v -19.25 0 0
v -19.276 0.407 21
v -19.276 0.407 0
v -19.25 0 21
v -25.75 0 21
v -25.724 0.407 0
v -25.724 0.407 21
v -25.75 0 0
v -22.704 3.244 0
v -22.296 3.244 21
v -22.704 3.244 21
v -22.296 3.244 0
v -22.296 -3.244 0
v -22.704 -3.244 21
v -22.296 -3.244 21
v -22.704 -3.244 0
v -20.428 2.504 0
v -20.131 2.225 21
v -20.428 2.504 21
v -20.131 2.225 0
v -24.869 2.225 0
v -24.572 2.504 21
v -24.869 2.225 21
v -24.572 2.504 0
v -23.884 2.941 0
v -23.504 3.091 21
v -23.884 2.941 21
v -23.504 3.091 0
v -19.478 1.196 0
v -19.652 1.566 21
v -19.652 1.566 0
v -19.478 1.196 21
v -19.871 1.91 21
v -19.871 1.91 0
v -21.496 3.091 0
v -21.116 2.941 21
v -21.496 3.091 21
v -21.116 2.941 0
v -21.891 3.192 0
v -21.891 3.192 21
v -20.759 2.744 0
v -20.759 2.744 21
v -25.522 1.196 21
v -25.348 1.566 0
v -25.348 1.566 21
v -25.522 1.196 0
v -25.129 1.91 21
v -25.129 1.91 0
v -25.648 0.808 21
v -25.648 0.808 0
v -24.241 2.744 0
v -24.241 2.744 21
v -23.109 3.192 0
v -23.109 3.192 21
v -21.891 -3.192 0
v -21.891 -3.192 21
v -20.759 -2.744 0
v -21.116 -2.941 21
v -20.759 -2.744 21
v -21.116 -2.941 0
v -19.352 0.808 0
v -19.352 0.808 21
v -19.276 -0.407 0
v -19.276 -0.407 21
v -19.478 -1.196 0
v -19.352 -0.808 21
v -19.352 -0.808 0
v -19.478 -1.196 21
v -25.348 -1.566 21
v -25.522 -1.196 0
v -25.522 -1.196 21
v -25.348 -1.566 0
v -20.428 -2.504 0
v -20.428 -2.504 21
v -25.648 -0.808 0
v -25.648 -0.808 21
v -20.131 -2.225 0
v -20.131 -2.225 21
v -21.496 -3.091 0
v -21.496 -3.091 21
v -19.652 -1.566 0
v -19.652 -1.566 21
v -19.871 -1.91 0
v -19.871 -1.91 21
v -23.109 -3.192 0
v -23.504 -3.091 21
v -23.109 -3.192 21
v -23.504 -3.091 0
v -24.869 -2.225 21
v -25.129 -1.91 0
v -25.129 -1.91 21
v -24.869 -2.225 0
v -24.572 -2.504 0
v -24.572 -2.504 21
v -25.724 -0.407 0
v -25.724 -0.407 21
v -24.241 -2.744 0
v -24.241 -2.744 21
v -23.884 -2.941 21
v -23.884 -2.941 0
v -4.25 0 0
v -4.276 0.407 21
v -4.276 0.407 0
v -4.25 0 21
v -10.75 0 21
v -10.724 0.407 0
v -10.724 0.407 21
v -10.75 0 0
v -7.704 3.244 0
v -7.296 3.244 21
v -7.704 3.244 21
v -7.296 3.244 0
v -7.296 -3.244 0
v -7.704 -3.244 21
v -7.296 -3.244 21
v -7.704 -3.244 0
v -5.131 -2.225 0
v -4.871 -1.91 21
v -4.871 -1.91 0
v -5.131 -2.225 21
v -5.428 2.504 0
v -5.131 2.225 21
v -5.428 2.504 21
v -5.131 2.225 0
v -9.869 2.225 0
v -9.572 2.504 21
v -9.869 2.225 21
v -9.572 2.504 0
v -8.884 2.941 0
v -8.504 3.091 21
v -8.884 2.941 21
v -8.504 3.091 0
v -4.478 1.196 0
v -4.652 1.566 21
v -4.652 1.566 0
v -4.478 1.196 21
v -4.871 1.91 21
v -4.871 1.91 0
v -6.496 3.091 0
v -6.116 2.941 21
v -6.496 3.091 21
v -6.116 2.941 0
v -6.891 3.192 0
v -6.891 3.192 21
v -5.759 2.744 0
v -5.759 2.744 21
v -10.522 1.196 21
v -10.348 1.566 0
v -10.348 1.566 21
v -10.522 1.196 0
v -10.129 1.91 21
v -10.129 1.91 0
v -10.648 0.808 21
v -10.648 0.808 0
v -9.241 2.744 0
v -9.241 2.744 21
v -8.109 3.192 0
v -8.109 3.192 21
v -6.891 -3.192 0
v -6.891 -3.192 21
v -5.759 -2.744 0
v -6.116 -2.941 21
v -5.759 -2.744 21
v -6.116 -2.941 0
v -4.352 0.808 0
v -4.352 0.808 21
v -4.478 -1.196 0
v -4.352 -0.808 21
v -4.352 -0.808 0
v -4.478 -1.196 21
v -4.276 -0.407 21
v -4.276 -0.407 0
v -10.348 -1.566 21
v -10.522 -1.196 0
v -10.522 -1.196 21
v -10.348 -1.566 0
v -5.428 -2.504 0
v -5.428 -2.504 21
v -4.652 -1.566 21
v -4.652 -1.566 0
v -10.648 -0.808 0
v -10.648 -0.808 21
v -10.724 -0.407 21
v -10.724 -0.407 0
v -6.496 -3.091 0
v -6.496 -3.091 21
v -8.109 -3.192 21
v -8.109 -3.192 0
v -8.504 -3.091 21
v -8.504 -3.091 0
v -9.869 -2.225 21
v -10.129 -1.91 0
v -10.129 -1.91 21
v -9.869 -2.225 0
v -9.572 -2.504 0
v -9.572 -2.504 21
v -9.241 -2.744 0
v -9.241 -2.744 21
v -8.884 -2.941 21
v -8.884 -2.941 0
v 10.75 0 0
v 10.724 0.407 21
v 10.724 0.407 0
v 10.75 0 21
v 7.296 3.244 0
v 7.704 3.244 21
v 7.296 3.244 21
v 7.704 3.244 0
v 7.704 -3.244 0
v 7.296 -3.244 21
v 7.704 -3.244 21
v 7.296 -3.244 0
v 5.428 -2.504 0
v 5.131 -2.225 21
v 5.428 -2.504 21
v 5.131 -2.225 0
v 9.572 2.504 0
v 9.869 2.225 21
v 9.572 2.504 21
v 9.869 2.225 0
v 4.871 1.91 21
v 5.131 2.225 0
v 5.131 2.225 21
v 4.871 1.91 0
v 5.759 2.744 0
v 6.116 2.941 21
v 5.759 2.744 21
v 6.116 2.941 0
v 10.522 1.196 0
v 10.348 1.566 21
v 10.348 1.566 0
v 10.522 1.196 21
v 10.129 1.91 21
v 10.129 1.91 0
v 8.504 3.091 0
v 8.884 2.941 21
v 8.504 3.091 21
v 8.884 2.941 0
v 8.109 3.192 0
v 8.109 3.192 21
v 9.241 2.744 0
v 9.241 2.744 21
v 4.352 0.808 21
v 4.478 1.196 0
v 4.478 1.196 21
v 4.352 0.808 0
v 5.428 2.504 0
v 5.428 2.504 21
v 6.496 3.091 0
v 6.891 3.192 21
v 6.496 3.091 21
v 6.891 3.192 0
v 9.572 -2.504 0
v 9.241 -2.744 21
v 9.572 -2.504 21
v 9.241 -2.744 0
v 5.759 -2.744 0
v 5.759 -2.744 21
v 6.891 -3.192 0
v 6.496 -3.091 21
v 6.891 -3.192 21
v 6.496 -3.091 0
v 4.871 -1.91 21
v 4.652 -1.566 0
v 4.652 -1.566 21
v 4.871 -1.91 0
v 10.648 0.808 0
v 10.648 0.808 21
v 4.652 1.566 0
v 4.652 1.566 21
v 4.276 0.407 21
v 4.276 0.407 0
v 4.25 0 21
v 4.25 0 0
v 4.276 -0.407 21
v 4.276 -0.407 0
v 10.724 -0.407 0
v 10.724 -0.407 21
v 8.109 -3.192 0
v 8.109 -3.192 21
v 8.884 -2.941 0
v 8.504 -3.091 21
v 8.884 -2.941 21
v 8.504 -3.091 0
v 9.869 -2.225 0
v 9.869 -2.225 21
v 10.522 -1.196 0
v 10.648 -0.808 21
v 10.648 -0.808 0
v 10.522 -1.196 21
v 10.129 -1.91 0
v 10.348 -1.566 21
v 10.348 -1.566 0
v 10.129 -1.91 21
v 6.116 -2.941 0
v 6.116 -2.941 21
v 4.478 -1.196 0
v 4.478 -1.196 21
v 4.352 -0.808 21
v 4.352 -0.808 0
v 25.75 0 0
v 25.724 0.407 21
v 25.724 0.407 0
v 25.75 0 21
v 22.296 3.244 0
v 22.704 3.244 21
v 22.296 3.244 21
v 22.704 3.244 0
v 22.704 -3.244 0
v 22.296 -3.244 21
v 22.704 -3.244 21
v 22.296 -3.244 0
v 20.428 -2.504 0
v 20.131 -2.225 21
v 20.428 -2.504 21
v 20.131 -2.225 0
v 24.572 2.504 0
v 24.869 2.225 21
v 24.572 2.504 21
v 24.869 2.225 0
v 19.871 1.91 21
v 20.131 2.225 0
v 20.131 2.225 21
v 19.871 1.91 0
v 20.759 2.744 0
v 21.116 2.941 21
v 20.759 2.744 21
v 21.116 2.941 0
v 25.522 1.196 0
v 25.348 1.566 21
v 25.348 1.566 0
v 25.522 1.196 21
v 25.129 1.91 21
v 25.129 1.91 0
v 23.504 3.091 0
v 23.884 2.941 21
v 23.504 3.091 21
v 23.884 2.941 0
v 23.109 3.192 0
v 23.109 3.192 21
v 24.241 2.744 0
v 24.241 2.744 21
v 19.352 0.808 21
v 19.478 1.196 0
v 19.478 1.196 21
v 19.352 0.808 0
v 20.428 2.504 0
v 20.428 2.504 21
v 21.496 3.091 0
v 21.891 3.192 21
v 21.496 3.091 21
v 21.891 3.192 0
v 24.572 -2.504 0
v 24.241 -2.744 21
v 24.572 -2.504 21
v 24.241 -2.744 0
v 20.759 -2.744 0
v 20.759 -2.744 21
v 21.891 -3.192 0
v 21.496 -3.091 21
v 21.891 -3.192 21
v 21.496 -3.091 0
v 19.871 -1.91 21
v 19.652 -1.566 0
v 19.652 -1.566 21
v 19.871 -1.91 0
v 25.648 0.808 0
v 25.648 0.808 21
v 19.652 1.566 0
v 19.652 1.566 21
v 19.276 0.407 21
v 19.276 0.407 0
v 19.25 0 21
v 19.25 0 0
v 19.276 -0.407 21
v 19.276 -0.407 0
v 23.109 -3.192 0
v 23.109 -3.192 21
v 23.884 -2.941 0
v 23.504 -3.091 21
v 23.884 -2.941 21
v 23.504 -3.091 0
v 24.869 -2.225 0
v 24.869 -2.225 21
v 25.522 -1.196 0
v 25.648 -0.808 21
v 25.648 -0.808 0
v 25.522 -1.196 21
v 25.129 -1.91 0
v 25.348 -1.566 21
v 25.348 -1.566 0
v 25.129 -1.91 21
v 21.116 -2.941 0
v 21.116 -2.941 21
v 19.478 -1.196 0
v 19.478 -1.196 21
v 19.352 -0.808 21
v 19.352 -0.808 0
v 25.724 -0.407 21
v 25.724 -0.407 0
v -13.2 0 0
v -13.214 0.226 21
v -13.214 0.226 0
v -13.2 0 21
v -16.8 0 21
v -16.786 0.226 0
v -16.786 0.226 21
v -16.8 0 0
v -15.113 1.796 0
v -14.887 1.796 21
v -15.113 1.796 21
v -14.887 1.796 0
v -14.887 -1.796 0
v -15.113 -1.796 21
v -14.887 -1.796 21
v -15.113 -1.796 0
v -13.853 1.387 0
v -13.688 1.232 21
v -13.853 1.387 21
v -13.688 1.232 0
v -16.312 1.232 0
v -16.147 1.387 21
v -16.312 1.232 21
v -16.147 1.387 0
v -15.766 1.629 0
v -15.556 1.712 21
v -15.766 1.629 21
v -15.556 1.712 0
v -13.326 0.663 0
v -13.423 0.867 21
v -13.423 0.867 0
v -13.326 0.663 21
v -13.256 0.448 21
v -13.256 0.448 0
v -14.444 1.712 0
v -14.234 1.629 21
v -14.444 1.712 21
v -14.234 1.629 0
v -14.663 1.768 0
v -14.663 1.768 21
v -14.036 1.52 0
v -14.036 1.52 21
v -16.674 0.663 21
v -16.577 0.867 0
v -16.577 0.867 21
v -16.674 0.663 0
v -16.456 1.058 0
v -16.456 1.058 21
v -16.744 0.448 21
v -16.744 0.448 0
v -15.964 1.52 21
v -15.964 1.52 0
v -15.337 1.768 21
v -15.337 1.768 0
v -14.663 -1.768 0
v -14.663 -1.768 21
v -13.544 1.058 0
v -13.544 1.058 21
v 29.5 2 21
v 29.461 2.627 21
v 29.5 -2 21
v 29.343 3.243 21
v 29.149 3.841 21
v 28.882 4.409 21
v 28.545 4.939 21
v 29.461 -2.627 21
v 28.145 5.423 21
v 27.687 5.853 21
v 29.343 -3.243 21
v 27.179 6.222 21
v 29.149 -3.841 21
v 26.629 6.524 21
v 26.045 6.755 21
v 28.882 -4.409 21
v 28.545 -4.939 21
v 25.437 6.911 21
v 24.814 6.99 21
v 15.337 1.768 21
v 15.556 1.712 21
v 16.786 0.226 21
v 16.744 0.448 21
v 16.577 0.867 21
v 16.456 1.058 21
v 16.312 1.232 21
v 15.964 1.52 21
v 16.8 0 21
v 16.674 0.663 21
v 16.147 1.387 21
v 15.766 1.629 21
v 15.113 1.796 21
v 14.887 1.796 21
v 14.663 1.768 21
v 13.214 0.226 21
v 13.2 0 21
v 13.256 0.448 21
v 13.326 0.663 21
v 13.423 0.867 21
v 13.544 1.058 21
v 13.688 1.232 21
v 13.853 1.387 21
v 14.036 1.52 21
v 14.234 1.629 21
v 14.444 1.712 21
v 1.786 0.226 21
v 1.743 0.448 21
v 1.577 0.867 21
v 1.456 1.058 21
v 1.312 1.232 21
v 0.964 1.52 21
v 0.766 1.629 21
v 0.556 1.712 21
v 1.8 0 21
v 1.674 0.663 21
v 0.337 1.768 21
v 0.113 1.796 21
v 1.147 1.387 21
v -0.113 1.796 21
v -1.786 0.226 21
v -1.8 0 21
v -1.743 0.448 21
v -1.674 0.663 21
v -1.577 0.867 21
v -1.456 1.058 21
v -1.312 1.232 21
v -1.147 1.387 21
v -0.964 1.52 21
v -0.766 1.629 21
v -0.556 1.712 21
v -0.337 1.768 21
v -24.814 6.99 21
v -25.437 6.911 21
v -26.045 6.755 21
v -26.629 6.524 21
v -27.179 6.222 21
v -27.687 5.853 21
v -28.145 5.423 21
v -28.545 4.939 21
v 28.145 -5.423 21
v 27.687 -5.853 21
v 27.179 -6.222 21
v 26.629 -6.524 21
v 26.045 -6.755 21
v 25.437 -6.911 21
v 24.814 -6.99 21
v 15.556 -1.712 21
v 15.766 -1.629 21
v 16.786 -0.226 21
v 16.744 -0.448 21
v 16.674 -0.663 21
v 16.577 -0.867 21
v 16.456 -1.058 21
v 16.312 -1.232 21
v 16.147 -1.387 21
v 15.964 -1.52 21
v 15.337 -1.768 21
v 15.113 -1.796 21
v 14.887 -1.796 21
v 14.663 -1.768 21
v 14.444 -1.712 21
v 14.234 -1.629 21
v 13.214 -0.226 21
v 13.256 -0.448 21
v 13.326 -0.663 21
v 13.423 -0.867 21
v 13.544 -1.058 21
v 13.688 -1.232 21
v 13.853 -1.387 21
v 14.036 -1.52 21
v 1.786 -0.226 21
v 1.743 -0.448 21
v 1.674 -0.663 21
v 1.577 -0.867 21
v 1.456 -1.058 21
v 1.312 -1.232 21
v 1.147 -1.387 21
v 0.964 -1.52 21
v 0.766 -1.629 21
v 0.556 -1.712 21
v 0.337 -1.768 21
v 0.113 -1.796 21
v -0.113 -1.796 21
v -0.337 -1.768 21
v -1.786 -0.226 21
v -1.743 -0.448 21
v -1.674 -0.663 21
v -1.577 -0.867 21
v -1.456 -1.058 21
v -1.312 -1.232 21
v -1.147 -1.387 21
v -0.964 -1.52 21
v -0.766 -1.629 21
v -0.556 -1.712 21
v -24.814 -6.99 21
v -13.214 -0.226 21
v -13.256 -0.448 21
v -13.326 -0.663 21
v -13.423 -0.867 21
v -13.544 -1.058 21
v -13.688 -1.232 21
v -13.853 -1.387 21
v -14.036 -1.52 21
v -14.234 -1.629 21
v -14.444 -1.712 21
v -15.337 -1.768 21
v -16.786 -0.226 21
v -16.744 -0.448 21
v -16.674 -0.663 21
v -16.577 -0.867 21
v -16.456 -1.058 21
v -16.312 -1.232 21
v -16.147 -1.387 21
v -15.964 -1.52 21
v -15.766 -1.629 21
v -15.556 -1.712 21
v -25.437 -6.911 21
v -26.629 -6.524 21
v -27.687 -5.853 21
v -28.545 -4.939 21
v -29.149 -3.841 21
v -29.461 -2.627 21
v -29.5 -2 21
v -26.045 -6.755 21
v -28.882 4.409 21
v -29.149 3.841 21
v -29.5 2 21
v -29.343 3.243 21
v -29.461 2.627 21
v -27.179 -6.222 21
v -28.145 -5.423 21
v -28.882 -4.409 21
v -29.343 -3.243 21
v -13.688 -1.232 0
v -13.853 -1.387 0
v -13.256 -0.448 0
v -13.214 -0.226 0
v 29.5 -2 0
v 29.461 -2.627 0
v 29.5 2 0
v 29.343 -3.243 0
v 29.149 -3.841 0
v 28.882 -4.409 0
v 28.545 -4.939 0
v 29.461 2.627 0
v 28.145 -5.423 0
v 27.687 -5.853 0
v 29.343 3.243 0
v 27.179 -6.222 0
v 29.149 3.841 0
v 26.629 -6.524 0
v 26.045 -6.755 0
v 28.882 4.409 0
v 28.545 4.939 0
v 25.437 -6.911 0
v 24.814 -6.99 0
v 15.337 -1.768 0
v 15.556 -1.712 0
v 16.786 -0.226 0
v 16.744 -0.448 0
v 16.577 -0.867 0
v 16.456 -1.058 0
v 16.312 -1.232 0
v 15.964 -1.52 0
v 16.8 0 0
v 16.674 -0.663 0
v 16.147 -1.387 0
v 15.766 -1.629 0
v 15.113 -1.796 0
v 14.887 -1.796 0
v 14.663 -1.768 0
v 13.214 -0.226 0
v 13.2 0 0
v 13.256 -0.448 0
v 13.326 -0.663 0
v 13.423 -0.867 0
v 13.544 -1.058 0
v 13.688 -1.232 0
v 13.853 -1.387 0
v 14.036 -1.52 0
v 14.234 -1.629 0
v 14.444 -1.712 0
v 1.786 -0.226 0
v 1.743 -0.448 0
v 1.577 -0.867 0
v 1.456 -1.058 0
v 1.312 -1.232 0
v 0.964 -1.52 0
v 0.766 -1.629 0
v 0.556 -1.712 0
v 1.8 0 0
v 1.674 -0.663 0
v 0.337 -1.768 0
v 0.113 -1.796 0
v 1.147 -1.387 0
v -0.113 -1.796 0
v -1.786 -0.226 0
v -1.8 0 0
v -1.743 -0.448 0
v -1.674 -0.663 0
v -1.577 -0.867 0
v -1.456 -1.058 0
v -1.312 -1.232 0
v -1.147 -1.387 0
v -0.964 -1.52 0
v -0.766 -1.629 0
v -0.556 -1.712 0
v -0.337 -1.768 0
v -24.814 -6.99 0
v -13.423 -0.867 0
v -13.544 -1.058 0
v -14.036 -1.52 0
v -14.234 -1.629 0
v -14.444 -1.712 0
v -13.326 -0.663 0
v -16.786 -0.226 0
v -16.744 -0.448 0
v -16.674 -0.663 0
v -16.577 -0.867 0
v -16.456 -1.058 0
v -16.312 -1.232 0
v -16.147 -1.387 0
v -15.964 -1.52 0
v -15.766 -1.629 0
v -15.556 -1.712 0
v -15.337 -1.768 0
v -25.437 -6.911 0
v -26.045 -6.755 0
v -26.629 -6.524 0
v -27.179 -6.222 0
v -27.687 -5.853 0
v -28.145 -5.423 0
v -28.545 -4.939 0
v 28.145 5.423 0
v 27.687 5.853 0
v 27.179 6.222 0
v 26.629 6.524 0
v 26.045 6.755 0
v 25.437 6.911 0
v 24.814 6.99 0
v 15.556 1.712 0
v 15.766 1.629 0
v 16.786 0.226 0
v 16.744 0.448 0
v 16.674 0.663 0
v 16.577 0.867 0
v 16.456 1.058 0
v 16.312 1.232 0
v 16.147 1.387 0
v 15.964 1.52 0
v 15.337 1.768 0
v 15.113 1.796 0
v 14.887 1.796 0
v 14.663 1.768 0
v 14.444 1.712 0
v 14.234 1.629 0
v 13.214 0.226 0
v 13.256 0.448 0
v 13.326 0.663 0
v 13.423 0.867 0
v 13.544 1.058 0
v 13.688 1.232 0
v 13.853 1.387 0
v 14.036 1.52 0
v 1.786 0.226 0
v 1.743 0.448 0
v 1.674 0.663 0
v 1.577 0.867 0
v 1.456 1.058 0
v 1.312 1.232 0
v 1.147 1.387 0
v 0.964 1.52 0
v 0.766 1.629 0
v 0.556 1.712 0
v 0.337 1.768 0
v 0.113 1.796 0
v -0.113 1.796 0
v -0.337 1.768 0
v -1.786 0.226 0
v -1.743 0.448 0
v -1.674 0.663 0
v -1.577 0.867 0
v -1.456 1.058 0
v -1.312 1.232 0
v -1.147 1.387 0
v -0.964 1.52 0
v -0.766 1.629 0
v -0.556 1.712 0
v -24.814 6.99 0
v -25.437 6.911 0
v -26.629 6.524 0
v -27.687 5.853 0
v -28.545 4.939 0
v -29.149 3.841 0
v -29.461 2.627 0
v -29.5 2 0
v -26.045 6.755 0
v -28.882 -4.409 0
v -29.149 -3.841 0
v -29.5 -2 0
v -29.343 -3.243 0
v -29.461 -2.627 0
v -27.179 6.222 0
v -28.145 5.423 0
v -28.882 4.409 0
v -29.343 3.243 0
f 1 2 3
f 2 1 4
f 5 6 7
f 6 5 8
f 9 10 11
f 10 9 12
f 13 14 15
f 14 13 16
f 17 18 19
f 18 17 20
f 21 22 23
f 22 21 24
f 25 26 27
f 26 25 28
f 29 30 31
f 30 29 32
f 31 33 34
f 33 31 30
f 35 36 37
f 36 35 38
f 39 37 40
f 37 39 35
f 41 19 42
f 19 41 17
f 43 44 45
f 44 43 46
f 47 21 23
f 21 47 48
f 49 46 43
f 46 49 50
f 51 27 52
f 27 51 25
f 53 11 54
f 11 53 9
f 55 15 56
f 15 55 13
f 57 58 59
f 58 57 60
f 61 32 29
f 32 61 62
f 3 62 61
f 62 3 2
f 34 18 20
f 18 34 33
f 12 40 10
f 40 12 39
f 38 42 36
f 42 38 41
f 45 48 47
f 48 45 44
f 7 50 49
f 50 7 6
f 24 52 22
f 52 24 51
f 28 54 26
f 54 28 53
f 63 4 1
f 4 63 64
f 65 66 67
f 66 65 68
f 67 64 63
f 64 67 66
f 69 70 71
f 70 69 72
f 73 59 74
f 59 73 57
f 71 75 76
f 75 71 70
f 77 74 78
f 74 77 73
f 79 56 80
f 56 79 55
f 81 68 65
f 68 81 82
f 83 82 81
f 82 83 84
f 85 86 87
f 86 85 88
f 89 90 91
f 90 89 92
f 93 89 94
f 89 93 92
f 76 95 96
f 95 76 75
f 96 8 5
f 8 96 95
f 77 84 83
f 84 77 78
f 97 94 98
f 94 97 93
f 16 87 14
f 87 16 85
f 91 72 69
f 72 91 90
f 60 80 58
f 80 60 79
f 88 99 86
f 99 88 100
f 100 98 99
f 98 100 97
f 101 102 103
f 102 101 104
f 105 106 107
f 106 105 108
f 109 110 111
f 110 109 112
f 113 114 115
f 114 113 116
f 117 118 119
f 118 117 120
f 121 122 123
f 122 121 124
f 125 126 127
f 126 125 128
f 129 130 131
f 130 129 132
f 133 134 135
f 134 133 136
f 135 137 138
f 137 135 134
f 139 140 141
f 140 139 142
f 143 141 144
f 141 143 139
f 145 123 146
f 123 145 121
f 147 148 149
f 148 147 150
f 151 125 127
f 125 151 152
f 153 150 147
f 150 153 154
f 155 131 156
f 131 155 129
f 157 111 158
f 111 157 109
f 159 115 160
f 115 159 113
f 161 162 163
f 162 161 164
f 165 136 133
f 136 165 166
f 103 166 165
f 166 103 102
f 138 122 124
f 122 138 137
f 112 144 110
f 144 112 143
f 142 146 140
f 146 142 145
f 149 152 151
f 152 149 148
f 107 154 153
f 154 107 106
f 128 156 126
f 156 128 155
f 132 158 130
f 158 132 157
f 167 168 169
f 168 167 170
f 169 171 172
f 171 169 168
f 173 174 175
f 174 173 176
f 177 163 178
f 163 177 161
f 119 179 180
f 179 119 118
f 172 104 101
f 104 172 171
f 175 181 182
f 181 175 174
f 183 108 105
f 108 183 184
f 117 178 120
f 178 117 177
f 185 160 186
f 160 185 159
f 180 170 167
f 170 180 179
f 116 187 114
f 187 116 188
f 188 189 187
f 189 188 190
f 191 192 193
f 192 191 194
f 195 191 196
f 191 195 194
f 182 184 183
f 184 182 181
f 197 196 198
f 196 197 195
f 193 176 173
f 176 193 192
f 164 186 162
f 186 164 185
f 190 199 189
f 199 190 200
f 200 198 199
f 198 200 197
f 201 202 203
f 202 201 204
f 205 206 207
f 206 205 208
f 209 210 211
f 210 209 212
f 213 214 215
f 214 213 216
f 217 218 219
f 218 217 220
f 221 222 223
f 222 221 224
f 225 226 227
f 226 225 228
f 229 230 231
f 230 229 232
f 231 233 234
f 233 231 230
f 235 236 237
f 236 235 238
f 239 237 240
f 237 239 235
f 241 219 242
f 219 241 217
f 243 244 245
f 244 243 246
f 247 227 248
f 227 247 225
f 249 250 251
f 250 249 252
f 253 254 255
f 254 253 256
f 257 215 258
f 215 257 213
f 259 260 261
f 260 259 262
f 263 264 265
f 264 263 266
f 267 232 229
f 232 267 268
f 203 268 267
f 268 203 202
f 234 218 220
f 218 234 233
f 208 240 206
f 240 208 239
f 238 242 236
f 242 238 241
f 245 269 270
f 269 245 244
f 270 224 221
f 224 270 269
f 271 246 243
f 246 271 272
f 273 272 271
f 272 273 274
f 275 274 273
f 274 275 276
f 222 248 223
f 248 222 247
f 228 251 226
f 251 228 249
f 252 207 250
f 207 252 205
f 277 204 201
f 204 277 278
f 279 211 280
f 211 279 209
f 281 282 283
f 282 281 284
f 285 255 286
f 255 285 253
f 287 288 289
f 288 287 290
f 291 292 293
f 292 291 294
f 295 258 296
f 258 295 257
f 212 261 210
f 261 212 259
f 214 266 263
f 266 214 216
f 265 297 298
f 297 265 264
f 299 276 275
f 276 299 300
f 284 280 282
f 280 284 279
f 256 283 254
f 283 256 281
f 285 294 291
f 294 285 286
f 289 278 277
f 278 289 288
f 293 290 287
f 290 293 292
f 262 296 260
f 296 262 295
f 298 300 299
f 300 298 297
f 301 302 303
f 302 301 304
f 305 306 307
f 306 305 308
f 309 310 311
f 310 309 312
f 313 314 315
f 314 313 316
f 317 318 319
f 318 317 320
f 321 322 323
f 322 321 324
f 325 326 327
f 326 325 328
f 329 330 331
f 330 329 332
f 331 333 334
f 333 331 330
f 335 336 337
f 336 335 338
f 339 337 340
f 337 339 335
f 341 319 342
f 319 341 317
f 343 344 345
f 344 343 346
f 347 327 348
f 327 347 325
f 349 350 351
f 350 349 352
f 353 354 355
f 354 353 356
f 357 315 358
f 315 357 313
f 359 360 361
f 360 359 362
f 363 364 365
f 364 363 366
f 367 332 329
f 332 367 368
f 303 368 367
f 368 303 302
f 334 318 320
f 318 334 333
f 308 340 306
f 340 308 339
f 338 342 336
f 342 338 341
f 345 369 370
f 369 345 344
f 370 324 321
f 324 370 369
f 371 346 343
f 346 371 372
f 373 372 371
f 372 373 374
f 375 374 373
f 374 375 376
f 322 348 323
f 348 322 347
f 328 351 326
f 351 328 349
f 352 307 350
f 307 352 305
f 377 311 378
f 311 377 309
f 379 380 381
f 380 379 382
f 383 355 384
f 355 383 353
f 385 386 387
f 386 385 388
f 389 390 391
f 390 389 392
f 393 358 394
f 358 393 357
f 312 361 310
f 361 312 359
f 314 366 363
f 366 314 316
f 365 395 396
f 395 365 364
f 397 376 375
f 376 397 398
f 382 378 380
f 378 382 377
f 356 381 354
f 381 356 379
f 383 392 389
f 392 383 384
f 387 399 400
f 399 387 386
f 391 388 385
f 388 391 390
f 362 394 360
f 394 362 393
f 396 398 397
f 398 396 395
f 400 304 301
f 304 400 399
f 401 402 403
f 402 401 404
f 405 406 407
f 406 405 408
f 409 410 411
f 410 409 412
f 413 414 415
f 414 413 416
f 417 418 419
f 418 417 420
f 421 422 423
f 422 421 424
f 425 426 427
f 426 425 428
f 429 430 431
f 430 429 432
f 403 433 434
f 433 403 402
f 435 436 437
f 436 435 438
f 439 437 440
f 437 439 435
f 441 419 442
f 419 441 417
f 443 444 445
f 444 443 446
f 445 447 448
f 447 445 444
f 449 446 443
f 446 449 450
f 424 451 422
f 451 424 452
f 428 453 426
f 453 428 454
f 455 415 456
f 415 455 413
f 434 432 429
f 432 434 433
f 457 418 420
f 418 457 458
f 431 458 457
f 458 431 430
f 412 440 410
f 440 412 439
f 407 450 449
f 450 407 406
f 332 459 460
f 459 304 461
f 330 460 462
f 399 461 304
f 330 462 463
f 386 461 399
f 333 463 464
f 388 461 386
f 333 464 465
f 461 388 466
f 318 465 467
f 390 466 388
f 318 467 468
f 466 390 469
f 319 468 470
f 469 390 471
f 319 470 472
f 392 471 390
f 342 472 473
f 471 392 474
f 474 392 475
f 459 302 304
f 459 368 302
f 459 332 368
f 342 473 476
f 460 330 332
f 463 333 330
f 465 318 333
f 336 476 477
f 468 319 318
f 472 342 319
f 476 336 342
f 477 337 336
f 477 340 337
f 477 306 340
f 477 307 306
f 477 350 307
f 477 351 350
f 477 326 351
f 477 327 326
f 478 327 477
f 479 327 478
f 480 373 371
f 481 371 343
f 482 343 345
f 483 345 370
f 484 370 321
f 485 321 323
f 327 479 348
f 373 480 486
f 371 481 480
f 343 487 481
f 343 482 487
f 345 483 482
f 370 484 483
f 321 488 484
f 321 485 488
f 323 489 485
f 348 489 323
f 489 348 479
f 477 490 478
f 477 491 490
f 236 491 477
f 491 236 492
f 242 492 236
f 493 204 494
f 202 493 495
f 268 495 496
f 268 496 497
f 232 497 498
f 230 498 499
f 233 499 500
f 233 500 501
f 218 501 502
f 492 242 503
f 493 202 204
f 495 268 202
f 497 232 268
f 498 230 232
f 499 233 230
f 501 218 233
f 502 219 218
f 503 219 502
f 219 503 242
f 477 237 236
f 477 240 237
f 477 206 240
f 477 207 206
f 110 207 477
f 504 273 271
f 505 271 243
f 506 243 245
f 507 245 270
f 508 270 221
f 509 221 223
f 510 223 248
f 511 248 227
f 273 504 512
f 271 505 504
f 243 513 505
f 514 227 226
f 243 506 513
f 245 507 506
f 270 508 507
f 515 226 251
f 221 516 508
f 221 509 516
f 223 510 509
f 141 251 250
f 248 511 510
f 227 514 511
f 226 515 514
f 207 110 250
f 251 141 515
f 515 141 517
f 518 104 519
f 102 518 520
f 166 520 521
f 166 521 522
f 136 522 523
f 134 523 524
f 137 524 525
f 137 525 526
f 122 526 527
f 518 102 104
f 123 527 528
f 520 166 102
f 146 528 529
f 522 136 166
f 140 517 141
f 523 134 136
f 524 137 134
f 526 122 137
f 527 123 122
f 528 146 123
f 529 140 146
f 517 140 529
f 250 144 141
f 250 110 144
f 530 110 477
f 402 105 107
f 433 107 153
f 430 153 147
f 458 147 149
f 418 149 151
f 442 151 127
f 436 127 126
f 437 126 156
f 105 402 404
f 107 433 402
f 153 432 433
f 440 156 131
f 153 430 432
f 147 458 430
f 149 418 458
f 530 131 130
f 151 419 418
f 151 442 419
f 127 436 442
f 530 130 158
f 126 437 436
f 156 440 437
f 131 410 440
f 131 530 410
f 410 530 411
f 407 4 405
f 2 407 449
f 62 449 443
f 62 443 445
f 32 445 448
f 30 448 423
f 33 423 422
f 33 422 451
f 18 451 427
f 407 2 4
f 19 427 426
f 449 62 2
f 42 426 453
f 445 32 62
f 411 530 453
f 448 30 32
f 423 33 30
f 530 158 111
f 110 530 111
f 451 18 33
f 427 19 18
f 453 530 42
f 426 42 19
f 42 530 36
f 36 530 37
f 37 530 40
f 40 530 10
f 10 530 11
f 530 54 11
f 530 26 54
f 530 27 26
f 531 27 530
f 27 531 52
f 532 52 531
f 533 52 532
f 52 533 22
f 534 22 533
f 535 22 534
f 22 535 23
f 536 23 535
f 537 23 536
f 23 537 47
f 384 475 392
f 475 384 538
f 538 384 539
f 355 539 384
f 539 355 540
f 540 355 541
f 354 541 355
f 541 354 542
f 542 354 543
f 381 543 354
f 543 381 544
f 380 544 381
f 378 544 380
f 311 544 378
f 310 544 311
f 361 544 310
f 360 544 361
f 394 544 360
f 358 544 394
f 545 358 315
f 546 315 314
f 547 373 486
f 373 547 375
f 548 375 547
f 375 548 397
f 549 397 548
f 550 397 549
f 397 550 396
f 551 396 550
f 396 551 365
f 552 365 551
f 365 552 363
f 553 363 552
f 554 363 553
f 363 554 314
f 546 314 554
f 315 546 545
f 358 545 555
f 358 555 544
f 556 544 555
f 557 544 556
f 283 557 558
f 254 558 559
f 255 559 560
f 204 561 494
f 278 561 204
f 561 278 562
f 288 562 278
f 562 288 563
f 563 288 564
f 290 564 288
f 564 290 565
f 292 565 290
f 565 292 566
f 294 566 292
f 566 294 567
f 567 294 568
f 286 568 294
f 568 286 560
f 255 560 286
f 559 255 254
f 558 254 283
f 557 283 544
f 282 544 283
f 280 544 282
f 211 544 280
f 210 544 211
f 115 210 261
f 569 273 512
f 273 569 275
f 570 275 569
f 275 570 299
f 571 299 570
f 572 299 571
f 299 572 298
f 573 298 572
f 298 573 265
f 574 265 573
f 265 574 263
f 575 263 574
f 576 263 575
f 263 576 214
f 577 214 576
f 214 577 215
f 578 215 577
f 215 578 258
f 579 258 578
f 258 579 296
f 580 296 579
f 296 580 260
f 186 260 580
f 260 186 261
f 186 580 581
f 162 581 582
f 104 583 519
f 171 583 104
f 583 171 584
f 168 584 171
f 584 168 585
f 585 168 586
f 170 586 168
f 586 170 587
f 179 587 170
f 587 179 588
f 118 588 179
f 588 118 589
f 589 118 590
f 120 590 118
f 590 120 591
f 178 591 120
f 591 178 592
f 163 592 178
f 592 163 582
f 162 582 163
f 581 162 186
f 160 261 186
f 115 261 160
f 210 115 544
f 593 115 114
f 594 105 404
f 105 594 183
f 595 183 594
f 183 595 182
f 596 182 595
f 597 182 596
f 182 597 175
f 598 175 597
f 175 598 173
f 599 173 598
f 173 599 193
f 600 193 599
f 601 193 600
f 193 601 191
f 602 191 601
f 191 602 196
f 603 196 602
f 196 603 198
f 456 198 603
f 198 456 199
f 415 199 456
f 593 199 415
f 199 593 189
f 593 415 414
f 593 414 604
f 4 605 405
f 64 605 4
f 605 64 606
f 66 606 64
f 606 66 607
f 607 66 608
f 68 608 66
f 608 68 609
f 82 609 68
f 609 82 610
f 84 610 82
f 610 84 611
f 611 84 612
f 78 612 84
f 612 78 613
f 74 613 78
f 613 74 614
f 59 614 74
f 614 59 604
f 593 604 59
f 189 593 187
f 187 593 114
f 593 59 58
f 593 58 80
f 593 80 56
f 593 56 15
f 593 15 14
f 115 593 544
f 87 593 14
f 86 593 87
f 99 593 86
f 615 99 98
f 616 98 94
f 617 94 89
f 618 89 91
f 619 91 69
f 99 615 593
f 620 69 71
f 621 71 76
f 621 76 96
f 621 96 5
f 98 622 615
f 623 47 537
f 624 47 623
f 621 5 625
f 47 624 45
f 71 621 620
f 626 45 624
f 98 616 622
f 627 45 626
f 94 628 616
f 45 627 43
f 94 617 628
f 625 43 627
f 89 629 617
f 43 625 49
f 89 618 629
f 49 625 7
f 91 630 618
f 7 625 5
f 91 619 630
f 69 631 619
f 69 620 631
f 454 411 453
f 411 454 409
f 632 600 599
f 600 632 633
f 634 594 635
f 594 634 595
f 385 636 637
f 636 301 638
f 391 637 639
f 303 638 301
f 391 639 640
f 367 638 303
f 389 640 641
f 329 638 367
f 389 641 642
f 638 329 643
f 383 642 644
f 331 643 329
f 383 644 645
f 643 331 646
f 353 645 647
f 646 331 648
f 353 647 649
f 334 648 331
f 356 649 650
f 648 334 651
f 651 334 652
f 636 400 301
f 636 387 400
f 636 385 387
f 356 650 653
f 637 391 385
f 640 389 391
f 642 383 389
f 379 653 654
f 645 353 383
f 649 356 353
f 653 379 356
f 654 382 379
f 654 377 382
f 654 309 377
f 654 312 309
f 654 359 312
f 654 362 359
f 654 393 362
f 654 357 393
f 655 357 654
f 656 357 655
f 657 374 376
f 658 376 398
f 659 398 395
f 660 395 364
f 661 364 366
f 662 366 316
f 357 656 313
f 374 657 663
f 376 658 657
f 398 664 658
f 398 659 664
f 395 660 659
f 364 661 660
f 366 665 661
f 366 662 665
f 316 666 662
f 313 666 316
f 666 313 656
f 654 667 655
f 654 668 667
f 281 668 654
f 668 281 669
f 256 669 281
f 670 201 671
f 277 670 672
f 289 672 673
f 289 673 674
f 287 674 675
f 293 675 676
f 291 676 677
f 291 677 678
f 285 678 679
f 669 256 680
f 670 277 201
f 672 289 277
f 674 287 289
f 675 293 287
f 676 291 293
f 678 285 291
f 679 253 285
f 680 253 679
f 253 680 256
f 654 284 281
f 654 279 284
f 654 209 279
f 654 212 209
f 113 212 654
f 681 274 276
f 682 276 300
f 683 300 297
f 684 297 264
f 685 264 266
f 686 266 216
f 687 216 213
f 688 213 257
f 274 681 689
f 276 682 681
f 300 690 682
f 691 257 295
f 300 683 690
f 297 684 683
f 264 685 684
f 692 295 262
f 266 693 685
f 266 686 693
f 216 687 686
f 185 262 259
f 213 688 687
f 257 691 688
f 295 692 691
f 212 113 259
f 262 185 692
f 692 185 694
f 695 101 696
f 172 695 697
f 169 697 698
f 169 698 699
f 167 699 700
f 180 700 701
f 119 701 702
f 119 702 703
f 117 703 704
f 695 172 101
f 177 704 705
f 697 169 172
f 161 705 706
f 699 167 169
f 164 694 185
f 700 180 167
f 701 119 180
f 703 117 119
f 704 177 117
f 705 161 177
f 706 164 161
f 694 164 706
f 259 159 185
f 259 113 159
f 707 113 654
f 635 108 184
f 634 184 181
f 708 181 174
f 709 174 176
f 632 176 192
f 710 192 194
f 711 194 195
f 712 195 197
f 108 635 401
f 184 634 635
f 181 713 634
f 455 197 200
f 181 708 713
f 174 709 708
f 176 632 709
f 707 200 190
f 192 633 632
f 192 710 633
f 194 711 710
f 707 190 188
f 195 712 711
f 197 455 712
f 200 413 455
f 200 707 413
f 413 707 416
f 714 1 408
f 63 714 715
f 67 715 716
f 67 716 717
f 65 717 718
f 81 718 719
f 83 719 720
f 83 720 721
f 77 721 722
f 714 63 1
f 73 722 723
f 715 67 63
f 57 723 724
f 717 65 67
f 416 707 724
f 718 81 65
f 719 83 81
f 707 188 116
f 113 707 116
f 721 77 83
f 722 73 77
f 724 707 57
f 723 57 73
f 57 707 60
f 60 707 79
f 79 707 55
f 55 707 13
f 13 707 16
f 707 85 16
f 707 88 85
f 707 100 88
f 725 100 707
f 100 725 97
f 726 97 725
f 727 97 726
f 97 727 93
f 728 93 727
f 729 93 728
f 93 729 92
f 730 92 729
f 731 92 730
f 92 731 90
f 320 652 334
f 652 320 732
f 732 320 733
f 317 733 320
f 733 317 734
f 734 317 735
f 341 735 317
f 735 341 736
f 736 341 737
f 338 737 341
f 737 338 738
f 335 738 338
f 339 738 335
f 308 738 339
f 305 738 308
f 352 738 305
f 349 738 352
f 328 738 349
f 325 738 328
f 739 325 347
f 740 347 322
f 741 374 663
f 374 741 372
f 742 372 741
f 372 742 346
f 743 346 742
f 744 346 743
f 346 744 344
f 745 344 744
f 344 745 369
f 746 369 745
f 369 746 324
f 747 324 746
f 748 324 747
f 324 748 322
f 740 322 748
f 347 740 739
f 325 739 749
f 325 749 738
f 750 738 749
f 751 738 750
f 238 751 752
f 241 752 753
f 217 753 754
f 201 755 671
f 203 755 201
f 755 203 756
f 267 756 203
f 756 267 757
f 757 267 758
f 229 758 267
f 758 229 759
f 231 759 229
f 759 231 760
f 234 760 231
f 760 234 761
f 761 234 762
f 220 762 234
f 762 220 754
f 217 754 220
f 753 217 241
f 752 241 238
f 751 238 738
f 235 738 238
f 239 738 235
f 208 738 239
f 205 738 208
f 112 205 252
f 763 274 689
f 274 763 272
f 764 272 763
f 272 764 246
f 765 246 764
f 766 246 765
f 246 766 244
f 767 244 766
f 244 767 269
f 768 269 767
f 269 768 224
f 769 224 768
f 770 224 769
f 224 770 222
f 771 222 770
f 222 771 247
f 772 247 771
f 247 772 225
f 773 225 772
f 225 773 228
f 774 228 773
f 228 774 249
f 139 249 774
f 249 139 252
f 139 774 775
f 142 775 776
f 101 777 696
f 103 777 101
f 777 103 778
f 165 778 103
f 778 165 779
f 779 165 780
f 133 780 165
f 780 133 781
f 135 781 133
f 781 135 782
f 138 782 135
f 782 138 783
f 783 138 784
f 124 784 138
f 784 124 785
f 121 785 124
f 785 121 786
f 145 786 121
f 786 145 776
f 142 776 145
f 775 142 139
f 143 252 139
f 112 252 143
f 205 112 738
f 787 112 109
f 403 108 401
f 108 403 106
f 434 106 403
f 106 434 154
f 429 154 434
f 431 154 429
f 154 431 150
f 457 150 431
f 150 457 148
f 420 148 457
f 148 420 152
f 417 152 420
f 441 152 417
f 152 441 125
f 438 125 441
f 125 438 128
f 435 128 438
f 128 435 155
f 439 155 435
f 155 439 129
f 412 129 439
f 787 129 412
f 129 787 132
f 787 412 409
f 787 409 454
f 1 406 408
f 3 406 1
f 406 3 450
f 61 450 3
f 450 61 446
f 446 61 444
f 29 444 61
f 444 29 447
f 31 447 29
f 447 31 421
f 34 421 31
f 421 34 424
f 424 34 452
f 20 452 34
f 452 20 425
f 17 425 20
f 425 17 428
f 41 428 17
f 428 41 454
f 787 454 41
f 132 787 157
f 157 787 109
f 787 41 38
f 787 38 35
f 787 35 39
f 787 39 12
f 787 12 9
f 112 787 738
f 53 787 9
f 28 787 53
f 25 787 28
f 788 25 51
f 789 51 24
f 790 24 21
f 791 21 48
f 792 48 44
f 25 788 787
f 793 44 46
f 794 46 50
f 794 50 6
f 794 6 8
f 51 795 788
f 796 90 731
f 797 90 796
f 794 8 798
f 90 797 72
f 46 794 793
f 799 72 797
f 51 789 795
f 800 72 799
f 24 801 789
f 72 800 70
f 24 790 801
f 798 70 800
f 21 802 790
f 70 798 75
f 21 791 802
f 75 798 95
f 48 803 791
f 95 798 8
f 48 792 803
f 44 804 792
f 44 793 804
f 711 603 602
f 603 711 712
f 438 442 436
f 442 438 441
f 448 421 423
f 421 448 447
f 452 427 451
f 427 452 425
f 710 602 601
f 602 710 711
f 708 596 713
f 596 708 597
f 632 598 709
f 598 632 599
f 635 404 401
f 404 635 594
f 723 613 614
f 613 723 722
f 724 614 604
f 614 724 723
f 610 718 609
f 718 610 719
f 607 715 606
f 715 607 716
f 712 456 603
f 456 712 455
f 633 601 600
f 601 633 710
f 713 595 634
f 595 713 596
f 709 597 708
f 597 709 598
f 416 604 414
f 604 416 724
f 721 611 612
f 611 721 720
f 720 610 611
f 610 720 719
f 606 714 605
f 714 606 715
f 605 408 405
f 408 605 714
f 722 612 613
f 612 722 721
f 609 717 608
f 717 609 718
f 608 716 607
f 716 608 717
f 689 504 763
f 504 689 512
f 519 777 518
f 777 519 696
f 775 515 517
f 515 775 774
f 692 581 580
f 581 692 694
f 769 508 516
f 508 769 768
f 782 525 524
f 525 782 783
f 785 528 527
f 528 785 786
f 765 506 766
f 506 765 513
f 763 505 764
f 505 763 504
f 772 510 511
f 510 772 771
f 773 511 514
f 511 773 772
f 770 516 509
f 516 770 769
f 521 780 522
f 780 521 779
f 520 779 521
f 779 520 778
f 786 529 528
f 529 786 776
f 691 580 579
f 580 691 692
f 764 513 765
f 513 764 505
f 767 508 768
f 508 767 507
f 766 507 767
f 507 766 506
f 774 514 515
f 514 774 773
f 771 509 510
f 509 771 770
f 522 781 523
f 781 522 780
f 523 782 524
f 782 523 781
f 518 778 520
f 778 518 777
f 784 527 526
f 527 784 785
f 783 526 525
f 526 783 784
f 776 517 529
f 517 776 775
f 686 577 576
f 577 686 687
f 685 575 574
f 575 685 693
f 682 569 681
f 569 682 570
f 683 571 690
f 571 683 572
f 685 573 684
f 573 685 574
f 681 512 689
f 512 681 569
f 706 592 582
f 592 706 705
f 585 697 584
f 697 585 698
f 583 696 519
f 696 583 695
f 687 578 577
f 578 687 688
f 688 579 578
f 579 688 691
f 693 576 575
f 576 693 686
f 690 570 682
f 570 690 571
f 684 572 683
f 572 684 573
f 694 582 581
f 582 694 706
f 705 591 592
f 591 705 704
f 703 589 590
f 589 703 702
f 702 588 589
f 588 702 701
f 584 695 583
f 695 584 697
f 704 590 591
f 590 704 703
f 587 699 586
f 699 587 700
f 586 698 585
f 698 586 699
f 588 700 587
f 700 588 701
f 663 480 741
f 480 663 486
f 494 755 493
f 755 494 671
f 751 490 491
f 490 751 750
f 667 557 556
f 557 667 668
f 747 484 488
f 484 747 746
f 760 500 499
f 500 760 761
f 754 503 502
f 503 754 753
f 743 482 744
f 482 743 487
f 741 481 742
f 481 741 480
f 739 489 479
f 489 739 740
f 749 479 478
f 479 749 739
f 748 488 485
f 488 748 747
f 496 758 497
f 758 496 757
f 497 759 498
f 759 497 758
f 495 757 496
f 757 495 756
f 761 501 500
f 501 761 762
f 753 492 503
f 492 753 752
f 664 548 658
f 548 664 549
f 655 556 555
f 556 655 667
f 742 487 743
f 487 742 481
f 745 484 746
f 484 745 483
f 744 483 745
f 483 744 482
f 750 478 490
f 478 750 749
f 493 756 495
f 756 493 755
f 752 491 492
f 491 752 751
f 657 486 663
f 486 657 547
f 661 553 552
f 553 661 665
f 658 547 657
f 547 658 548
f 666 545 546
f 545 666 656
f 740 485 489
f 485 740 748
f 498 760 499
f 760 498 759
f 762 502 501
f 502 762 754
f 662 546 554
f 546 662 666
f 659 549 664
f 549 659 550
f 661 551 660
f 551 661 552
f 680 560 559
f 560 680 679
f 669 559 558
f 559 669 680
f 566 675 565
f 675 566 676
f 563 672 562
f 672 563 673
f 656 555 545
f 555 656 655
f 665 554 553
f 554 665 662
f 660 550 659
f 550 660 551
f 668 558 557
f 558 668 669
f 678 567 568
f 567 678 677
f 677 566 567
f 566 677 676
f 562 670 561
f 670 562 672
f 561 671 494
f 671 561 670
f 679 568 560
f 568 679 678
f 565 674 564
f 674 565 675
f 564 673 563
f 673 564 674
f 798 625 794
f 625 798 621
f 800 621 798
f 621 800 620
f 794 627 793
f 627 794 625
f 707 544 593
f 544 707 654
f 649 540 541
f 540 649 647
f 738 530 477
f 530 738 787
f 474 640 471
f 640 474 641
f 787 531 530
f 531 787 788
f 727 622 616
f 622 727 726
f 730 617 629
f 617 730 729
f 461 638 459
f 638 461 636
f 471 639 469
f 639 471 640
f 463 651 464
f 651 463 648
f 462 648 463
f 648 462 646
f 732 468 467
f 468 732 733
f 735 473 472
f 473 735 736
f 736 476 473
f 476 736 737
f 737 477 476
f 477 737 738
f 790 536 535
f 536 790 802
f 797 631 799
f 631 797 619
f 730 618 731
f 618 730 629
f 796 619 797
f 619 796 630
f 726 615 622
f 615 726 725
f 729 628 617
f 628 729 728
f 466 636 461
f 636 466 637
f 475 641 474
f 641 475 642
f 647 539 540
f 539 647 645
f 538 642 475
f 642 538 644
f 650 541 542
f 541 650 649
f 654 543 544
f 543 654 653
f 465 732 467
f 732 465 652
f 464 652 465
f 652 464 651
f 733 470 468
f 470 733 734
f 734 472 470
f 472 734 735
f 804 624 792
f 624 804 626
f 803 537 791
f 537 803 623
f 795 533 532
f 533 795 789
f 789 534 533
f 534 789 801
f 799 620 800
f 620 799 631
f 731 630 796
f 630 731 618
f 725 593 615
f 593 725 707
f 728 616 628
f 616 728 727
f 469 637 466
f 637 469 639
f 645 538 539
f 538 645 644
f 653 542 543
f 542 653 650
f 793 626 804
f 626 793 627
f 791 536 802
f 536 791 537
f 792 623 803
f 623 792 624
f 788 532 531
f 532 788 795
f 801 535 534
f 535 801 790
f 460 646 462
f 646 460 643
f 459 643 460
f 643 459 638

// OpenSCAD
$fn = 50;


difference() {
	union() {
		hull() {
			translate(v = [-24.5000000000, 2.0000000000, 0]) {
				cylinder(h = 21, r = 5);
			}
			translate(v = [24.5000000000, 2.0000000000, 0]) {
				cylinder(h = 21, r = 5);
			}
			translate(v = [-24.5000000000, -2.0000000000, 0]) {
				cylinder(h = 21, r = 5);
			}
			translate(v = [24.5000000000, -2.0000000000, 0]) {
				cylinder(h = 21, r = 5);
			}
		}
	}
	union() {
		translate(v = [-22.5000000000, 0.0000000000, -100.0000000000]) {
			cylinder(h = 200, r = 3.2500000000);
		}
		translate(v = [-7.5000000000, 0.0000000000, -100.0000000000]) {
			cylinder(h = 200, r = 3.2500000000);
		}
		translate(v = [7.5000000000, 0.0000000000, -100.0000000000]) {
			cylinder(h = 200, r = 3.2500000000);
		}
		translate(v = [22.5000000000, 0.0000000000, -100.0000000000]) {
			cylinder(h = 200, r = 3.2500000000);
		}
		translate(v = [-22.5000000000, 0.0000000000, 0]) {
			cylinder(h = 21, r = 1.8000000000);
		}
		translate(v = [-15.0000000000, 0.0000000000, 0]) {
			cylinder(h = 21, r = 1.8000000000);
		}
		translate(v = [-7.5000000000, 0.0000000000, 0]) {
			cylinder(h = 21, r = 1.8000000000);
		}
		cylinder(h = 21, r = 1.8000000000);
		translate(v = [7.5000000000, 0.0000000000, 0]) {
			cylinder(h = 21, r = 1.8000000000);
		}
		translate(v = [15.0000000000, 0.0000000000, 0]) {
			cylinder(h = 21, r = 1.8000000000);
		}
		translate(v = [22.5000000000, 0.0000000000, 0]) {
			cylinder(h = 21, r = 1.8000000000);
		}
		translate(v = [-22.5000000000, 0.0000000000, 0]) {
			cylinder(h = 21, r = 1.8000000000);
		}
		translate(v = [-15.0000000000, 0.0000000000, 0]) {
			cylinder(h = 21, r = 1.8000000000);
		}
		translate(v = [-7.5000000000, 0.0000000000, 0]) {
			cylinder(h = 21, r = 1.8000000000);
		}
		cylinder(h = 21, r = 1.8000000000);
		translate(v = [7.5000000000, 0.0000000000, 0]) {
			cylinder(h = 21, r = 1.8000000000);
		}
		translate(v = [15.0000000000, 0.0000000000, 0]) {
			cylinder(h = 21, r = 1.8000000000);
		}
		translate(v = [22.5000000000, 0.0000000000, 0]) {
			cylinder(h = 21, r = 1.8000000000);
		}
		translate(v = [-22.5000000000, 0.0000000000, 0]) {
			cylinder(h = 21, r = 1.8000000000);
		}
		translate(v = [-15.0000000000, 0.0000000000, 0]) {
			cylinder(h = 21, r = 1.8000000000);
		}
		translate(v = [-7.5000000000, 0.0000000000, 0]) {
			cylinder(h = 21, r = 1.8000000000);
		}
		cylinder(h = 21, r = 1.8000000000);
		translate(v = [7.5000000000, 0.0000000000, 0]) {
			cylinder(h = 21, r = 1.8000000000);
		}
		translate(v = [15.0000000000, 0.0000000000, 0]) {
			cylinder(h = 21, r = 1.8000000000);
		}
		translate(v = [22.5000000000, 0.0000000000, 0]) {
			cylinder(h = 21, r = 1.8000000000);
		}
	}
}
